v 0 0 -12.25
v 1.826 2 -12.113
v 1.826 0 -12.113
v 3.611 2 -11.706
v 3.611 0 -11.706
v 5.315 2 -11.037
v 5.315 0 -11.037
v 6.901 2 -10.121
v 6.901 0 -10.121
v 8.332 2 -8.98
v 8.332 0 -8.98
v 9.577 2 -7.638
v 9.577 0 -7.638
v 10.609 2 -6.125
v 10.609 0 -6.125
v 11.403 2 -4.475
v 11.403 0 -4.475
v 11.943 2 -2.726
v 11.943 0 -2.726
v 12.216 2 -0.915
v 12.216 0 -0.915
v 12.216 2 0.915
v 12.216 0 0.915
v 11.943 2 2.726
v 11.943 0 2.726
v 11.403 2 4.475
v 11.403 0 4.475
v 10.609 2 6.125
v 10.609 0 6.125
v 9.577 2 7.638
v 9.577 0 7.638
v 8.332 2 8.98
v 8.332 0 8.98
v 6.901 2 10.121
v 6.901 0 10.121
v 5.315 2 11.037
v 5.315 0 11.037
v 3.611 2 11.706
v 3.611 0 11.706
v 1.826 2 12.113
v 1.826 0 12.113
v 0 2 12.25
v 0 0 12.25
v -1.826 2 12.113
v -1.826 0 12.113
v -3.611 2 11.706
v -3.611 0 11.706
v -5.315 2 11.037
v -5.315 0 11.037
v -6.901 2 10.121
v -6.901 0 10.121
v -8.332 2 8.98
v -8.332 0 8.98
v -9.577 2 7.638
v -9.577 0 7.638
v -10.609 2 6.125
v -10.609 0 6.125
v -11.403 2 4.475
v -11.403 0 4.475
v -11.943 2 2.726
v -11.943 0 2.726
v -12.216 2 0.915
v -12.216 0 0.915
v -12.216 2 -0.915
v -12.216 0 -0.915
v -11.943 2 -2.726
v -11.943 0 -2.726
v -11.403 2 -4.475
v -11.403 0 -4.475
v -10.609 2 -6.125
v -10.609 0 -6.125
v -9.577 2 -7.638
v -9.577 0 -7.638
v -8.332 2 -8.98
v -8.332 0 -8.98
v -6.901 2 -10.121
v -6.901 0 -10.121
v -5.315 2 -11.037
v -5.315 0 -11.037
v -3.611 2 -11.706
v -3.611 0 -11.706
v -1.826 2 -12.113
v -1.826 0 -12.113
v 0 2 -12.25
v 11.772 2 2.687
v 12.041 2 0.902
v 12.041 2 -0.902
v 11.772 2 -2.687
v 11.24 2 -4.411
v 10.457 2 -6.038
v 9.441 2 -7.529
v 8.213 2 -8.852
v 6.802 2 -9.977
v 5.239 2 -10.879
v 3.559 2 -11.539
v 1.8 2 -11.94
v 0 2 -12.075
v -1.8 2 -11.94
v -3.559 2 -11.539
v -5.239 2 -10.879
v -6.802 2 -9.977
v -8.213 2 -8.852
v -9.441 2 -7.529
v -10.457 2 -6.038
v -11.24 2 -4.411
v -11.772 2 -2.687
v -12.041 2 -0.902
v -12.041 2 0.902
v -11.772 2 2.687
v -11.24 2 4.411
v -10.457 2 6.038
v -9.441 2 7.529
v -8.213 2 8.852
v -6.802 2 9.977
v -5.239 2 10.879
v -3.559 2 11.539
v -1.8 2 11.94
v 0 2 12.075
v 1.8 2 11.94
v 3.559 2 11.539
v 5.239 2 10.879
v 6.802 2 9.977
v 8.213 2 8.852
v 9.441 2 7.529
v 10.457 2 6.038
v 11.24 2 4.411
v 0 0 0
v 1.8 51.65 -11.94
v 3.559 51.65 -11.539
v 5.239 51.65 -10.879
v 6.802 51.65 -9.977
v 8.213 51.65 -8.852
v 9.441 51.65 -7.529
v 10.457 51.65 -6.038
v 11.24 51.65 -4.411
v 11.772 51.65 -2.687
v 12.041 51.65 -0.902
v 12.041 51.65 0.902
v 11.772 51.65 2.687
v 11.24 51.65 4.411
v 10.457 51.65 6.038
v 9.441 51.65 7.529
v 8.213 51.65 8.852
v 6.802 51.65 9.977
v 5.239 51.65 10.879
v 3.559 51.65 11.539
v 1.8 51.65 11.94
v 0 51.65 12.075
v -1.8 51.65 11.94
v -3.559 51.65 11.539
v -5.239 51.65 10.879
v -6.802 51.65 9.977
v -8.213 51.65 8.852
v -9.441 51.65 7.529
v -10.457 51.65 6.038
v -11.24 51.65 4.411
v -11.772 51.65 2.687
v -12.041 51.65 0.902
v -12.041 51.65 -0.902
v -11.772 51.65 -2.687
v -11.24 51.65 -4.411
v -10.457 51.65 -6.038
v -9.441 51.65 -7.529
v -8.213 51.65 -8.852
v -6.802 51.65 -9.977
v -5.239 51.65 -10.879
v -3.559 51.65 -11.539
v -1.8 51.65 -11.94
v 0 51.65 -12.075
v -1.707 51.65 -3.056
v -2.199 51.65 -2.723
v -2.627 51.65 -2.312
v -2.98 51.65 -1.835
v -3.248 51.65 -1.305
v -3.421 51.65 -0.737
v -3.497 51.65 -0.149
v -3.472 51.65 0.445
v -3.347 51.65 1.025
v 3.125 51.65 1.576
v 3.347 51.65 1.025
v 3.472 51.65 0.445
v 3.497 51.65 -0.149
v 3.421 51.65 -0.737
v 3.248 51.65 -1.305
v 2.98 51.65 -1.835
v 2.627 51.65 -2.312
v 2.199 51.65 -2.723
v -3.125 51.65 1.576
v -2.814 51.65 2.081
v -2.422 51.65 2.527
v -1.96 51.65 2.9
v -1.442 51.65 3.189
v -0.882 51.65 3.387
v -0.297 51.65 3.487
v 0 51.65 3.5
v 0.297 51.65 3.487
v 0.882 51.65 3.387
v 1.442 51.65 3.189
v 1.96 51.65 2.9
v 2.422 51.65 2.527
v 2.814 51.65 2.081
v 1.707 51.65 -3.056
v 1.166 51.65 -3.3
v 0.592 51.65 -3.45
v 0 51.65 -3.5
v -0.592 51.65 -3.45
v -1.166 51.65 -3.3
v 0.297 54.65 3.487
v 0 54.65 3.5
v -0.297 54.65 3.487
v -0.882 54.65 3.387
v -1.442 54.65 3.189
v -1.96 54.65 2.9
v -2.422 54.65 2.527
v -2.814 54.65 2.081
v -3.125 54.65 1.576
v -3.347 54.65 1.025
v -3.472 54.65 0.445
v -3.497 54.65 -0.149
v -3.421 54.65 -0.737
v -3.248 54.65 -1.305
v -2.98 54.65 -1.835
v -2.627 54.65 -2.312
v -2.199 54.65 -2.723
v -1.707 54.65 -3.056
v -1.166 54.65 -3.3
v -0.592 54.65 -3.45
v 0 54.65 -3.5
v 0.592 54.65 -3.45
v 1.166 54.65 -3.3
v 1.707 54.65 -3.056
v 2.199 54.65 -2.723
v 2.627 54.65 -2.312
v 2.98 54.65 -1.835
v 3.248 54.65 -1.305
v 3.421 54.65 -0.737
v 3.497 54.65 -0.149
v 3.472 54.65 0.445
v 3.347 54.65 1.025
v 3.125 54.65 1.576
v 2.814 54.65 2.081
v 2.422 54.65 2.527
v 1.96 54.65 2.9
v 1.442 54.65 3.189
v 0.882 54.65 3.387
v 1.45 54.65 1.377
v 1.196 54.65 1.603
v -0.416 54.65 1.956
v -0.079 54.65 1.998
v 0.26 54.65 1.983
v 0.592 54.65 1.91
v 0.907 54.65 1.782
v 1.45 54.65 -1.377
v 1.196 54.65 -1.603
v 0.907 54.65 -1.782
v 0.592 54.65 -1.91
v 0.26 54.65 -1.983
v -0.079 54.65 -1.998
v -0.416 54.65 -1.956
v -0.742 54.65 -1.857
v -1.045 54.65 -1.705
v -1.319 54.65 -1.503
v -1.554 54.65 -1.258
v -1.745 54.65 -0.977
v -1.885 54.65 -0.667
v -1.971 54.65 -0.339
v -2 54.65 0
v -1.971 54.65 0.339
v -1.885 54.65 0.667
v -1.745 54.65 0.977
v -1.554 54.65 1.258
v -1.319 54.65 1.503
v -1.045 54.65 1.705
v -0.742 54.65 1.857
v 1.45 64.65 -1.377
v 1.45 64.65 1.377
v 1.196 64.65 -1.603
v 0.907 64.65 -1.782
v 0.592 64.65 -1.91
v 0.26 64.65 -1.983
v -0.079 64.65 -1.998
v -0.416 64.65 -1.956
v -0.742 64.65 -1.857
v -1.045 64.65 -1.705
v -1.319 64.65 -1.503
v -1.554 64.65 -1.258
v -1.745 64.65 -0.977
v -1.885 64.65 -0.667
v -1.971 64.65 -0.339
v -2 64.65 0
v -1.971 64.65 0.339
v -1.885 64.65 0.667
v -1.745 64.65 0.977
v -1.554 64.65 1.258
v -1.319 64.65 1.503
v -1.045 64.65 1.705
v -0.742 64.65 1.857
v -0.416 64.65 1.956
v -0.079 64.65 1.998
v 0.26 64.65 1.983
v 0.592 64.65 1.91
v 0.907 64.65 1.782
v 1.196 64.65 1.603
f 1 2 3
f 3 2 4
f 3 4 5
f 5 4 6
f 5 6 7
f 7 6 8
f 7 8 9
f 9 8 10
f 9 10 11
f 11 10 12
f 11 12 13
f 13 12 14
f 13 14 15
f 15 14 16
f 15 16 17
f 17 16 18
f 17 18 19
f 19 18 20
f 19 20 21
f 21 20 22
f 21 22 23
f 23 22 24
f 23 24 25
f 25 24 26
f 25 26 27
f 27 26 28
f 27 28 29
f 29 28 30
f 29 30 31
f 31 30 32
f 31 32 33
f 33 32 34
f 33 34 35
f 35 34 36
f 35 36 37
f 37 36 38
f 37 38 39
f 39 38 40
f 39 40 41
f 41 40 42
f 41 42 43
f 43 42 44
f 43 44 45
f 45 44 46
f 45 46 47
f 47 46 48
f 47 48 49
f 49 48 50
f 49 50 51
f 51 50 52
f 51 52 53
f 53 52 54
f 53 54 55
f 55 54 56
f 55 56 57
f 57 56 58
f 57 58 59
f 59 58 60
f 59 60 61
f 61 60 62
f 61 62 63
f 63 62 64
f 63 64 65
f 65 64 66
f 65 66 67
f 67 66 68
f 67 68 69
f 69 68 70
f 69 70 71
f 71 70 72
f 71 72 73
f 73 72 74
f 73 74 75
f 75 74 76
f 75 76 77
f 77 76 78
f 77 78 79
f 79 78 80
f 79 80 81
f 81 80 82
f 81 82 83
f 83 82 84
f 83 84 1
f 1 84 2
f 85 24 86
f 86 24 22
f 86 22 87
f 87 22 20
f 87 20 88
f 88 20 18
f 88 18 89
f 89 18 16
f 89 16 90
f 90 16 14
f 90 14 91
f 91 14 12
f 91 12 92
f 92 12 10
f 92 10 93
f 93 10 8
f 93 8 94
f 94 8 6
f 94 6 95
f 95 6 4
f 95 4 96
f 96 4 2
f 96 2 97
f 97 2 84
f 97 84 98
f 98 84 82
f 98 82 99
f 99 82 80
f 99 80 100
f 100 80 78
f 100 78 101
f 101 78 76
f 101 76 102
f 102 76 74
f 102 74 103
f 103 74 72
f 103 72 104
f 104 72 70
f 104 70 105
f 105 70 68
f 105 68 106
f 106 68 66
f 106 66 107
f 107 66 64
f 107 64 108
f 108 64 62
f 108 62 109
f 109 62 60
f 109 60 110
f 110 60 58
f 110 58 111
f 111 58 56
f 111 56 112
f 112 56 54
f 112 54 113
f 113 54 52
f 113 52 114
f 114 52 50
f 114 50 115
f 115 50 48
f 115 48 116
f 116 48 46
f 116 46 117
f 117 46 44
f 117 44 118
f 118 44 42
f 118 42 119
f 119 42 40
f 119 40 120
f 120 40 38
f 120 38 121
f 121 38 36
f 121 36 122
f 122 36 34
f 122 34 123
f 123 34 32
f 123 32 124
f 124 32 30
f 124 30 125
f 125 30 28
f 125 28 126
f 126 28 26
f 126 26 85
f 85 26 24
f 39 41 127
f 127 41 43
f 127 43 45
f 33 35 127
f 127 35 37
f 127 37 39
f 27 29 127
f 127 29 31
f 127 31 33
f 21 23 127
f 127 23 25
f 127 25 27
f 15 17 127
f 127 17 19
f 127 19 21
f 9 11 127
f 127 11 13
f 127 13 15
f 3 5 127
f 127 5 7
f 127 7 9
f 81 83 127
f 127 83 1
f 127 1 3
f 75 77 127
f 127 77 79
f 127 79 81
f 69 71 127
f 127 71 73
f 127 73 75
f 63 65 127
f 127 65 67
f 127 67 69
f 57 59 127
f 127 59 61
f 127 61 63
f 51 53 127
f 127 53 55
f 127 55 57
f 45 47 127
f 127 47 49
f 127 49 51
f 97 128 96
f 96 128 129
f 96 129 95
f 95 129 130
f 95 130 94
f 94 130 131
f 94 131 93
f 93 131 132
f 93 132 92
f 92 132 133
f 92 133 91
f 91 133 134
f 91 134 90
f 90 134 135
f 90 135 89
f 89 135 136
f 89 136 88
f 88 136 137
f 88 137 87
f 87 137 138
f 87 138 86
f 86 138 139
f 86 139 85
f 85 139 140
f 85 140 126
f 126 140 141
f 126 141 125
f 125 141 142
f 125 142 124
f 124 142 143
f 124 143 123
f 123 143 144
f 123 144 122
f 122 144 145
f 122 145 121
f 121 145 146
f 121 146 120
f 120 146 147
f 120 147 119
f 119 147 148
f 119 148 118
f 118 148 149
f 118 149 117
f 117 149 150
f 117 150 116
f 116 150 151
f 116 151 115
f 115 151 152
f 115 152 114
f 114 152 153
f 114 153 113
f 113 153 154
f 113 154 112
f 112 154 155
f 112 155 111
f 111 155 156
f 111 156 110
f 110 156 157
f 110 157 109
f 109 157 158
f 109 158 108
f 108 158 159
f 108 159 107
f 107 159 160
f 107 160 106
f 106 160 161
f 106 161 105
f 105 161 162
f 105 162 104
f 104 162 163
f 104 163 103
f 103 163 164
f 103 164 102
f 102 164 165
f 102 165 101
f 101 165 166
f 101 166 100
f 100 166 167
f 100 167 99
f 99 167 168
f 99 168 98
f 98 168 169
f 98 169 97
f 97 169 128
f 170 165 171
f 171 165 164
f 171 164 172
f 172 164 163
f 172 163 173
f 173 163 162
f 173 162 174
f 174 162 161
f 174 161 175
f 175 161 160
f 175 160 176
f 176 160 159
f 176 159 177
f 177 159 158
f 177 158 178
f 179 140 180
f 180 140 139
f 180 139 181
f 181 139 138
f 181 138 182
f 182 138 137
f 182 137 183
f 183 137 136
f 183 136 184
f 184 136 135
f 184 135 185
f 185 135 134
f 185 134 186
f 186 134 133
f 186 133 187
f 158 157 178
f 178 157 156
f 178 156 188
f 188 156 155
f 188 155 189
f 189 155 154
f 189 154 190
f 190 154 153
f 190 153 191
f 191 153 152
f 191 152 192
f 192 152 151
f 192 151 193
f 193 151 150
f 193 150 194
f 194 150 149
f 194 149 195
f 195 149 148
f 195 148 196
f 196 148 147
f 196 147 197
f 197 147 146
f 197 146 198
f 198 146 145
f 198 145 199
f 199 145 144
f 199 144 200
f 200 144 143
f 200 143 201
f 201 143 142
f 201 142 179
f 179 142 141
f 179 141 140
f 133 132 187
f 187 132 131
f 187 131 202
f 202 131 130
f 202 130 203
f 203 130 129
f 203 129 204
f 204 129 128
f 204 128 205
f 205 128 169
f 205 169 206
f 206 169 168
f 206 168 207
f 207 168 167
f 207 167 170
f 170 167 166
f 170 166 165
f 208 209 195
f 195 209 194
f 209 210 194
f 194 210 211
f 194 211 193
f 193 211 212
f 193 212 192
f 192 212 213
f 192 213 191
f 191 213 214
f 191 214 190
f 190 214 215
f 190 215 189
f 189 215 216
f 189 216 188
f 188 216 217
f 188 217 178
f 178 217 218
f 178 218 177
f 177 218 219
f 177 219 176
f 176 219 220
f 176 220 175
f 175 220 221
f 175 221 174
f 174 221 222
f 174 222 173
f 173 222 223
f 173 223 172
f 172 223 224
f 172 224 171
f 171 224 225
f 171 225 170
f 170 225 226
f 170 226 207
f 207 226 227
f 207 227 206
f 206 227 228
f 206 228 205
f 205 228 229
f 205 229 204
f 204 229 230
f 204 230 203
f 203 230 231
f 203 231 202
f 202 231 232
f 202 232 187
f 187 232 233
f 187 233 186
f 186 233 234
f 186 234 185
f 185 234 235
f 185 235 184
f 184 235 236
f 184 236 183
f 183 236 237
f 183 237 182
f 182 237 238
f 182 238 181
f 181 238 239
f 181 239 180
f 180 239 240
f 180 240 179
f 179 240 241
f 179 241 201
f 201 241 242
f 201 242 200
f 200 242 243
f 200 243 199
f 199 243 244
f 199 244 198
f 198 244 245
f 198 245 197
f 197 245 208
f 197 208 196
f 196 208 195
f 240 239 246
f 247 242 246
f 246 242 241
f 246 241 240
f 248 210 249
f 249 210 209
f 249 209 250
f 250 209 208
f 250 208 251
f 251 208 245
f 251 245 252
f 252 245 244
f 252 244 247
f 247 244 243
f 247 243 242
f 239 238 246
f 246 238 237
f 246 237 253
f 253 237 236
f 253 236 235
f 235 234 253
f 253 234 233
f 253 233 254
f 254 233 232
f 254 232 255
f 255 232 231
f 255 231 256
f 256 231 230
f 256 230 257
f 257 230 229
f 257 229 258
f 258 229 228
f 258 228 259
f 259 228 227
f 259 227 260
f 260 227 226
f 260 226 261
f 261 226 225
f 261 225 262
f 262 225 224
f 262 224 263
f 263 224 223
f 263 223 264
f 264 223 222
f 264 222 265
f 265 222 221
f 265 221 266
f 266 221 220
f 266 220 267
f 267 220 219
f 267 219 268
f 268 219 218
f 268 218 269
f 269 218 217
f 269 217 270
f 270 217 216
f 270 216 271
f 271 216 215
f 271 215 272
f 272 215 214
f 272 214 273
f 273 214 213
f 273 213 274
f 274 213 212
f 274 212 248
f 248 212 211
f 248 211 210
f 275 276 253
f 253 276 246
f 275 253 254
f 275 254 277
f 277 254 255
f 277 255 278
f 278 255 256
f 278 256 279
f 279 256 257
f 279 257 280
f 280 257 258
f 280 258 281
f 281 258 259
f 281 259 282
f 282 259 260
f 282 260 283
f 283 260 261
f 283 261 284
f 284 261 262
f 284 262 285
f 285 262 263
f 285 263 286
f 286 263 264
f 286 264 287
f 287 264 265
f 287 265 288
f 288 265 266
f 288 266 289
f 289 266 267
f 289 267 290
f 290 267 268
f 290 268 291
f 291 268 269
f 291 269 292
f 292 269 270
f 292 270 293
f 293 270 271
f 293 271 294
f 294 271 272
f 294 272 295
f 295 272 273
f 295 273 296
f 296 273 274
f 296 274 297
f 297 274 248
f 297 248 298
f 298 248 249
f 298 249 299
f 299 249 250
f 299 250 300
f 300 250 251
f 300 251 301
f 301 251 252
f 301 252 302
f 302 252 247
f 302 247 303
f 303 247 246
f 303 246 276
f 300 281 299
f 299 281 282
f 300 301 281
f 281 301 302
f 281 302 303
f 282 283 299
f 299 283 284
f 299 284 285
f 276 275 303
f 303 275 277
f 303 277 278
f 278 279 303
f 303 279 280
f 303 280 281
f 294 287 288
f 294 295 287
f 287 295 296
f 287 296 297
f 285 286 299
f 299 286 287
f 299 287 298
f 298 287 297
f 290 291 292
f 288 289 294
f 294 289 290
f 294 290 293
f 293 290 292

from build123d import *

# Parameters (mm, degrees)
SKETCH_1_R      = 12.25
EXTRUDE_1_DEPTH = 2
SKETCH_2_R      = 12.075
EXTRUDE_2_DEPTH = 51.65
SKETCH_3_R      = 3.5
EXTRUDE_3_DEPTH = 3
EXTRUDE_4_DEPTH = 10


with BuildPart() as part:
    # Эскиз1 → Бобышка-Вытянуть1 (new body)
    with BuildSketch(Plane(origin=(0, 0, 0), x_dir=(1, 0, 0), z_dir=(0, 1, 0))):
        Circle(SKETCH_1_R)
    extrude(amount=EXTRUDE_1_DEPTH)

    # Эскиз2 → Бобышка-Вытянуть2 (add)
    with BuildSketch(Plane(origin=(0, 0, 0), x_dir=(1, 0, 0), z_dir=(0, 1, 0))):
        Circle(SKETCH_2_R)
    extrude(amount=EXTRUDE_2_DEPTH)

    # Эскиз3 → Бобышка-Вытянуть3 (add)
    with BuildSketch(Plane(origin=(0, 51.65, 0), x_dir=(1, 0, 0), z_dir=(0, 1, 0))):
        Circle(SKETCH_3_R)
    extrude(amount=EXTRUDE_3_DEPTH)

    # Эскиз4 → Бобышка-Вытянуть4 (add)
    with BuildSketch(Plane(origin=(0, 54.65, 0), x_dir=(1, 0, 0), z_dir=(0, 1, 0))):
        with BuildLine():
            Line((1.45, 0), (1.45, 1.377497731))
            ThreePointArc((1.45, 1.377497731), (-2, 0), (1.45, -1.377497731))
            Line((1.45, -1.377497731), (1.45, 0))
        make_face()
    extrude(amount=EXTRUDE_4_DEPTH)


solid = part.part
